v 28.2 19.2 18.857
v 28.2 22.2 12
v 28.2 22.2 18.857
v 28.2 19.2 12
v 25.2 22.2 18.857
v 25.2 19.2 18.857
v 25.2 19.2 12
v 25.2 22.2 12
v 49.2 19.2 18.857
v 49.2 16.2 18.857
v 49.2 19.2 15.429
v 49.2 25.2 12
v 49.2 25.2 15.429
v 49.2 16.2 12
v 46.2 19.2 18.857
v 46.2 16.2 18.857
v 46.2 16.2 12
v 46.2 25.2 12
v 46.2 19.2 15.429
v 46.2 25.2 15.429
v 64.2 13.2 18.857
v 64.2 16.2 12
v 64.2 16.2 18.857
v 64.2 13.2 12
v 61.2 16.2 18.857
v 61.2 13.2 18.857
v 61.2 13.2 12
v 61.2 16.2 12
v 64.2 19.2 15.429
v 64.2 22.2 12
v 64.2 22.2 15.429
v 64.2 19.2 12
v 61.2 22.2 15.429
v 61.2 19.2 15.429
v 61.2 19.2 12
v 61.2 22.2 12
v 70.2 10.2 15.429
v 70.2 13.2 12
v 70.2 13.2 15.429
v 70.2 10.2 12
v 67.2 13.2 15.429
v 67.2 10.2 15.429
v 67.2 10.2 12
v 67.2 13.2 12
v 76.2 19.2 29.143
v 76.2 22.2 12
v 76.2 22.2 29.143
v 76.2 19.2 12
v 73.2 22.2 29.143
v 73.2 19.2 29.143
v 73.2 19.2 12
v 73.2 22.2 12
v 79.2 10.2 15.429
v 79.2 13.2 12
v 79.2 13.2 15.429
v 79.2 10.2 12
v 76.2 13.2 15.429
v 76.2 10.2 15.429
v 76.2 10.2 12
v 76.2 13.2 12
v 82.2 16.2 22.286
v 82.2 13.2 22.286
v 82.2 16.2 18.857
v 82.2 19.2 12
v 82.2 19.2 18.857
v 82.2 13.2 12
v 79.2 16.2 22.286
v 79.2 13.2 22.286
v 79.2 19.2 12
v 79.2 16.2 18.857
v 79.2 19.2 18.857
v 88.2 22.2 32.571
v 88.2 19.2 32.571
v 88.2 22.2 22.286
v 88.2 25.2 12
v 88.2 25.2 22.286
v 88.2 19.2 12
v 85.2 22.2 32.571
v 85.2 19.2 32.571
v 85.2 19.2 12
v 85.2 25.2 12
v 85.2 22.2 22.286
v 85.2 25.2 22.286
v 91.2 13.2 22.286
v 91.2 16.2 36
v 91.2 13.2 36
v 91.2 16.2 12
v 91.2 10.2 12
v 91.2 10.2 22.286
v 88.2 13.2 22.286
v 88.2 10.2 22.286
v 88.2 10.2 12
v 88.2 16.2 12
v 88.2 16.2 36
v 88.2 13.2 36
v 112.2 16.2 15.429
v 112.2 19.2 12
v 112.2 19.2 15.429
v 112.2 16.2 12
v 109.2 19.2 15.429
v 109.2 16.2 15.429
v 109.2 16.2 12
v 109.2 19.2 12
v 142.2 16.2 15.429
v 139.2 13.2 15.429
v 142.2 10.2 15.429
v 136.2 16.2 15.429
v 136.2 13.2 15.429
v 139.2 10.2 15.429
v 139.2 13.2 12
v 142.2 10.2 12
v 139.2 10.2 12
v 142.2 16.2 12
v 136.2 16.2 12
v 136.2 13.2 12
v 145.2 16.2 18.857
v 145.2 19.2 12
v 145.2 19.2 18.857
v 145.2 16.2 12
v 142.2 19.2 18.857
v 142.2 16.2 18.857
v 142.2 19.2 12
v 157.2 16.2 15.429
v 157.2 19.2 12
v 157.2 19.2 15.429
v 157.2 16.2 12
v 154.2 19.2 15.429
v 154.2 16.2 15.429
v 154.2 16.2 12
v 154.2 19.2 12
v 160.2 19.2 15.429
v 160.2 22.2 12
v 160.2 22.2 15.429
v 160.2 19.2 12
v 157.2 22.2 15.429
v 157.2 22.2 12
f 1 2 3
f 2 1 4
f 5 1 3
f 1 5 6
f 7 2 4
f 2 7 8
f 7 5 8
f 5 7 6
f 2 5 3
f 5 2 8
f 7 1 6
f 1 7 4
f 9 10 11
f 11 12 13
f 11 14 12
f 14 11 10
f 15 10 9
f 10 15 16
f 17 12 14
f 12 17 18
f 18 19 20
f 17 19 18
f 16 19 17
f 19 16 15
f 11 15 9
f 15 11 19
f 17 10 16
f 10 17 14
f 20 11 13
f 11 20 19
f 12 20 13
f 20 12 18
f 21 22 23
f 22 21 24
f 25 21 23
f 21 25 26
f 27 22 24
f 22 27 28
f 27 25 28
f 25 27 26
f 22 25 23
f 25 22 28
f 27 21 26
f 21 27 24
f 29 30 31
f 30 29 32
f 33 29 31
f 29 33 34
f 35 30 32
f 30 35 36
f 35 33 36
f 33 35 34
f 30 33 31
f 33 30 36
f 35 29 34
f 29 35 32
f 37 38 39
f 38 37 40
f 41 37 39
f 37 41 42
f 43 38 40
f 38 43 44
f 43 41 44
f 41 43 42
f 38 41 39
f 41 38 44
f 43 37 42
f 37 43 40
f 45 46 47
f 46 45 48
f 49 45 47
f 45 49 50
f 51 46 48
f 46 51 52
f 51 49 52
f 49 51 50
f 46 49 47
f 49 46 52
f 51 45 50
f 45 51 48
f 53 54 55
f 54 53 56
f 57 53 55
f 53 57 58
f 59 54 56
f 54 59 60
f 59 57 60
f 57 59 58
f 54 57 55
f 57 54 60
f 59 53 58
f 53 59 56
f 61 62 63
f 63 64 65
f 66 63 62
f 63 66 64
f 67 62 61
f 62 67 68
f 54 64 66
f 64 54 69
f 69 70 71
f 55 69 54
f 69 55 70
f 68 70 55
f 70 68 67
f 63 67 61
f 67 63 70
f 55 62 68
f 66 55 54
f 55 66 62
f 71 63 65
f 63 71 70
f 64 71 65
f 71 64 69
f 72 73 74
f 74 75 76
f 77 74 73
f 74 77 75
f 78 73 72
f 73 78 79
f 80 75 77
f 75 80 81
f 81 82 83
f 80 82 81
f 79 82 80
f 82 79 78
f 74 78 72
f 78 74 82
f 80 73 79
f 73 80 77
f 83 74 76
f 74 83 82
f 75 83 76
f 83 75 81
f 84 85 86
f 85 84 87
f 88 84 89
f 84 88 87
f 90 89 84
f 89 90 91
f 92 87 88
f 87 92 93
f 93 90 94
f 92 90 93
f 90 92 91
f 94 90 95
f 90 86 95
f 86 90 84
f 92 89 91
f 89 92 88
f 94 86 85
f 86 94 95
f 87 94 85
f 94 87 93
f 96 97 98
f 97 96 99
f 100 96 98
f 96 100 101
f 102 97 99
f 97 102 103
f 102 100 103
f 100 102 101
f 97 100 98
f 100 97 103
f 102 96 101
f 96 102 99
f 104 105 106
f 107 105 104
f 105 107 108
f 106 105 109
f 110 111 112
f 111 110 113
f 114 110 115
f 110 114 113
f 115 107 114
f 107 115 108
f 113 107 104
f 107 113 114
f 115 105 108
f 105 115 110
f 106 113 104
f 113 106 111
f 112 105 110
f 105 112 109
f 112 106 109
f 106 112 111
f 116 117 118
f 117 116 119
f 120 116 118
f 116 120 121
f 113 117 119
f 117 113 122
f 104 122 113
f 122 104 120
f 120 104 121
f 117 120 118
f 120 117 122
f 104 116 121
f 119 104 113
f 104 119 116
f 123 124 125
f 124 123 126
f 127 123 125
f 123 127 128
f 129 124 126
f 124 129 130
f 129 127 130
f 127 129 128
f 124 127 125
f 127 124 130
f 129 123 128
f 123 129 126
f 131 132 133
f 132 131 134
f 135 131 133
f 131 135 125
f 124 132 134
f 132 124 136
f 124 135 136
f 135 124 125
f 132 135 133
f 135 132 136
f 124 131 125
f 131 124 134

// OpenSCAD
union() {
	translate(v = [25.200000000000003, 19.200000000000003, 12.0]) {
		cube(size = [3.0, 3.0, 6.857142857142857]);
	}
	translate(v = [46.2, 16.200000000000003, 12.0]) {
		cube(size = [3.0, 3.0, 6.857142857142857]);
	}
	translate(v = [46.2, 19.200000000000003, 12.0]) {
		cube(size = [3.0, 3.0, 3.4285714285714284]);
	}
	translate(v = [46.2, 22.200000000000003, 12.0]) {
		cube(size = [3.0, 3.0, 3.4285714285714284]);
	}
	translate(v = [61.2, 13.200000000000001, 12.0]) {
		cube(size = [3.0, 3.0, 6.857142857142857]);
	}
	translate(v = [61.2, 19.200000000000003, 12.0]) {
		cube(size = [3.0, 3.0, 3.4285714285714284]);
	}
	translate(v = [67.2, 10.200000000000001, 12.0]) {
		cube(size = [3.0, 3.0, 3.4285714285714284]);
	}
	translate(v = [73.2, 19.200000000000003, 12.0]) {
		cube(size = [3.0, 3.0, 17.142857142857142]);
	}
	translate(v = [76.2, 10.200000000000001, 12.0]) {
		cube(size = [3.0, 3.0, 3.4285714285714284]);
	}
	translate(v = [79.2, 13.200000000000001, 12.0]) {
		cube(size = [3.0, 3.0, 10.285714285714286]);
	}
	translate(v = [79.2, 16.200000000000003, 12.0]) {
		cube(size = [3.0, 3.0, 6.857142857142857]);
	}
	translate(v = [85.2, 19.200000000000003, 12.0]) {
		cube(size = [3.0, 3.0, 20.571428571428573]);
	}
	translate(v = [85.2, 22.200000000000003, 12.0]) {
		cube(size = [3.0, 3.0, 10.285714285714286]);
	}
	translate(v = [88.2, 10.200000000000001, 12.0]) {
		cube(size = [3.0, 3.0, 10.285714285714286]);
	}
	translate(v = [88.2, 13.200000000000001, 12.0]) {
		cube(size = [3.0, 3.0, 24.0]);
	}
	translate(v = [109.2, 16.200000000000003, 12.0]) {
		cube(size = [3.0, 3.0, 3.4285714285714284]);
	}
	translate(v = [136.2, 13.200000000000001, 12.0]) {
		cube(size = [3.0, 3.0, 3.4285714285714284]);
	}
	translate(v = [139.2, 10.200000000000001, 12.0]) {
		cube(size = [3.0, 3.0, 3.4285714285714284]);
	}
	translate(v = [139.2, 13.200000000000001, 12.0]) {
		cube(size = [3.0, 3.0, 3.4285714285714284]);
	}
	translate(v = [142.2, 16.200000000000003, 12.0]) {
		cube(size = [3.0, 3.0, 6.857142857142857]);
	}
	translate(v = [154.2, 16.200000000000003, 12.0]) {
		cube(size = [3.0, 3.0, 3.4285714285714284]);
	}
	translate(v = [157.2, 19.200000000000003, 12.0]) {
		cube(size = [3.0, 3.0, 3.4285714285714284]);
	}
}
